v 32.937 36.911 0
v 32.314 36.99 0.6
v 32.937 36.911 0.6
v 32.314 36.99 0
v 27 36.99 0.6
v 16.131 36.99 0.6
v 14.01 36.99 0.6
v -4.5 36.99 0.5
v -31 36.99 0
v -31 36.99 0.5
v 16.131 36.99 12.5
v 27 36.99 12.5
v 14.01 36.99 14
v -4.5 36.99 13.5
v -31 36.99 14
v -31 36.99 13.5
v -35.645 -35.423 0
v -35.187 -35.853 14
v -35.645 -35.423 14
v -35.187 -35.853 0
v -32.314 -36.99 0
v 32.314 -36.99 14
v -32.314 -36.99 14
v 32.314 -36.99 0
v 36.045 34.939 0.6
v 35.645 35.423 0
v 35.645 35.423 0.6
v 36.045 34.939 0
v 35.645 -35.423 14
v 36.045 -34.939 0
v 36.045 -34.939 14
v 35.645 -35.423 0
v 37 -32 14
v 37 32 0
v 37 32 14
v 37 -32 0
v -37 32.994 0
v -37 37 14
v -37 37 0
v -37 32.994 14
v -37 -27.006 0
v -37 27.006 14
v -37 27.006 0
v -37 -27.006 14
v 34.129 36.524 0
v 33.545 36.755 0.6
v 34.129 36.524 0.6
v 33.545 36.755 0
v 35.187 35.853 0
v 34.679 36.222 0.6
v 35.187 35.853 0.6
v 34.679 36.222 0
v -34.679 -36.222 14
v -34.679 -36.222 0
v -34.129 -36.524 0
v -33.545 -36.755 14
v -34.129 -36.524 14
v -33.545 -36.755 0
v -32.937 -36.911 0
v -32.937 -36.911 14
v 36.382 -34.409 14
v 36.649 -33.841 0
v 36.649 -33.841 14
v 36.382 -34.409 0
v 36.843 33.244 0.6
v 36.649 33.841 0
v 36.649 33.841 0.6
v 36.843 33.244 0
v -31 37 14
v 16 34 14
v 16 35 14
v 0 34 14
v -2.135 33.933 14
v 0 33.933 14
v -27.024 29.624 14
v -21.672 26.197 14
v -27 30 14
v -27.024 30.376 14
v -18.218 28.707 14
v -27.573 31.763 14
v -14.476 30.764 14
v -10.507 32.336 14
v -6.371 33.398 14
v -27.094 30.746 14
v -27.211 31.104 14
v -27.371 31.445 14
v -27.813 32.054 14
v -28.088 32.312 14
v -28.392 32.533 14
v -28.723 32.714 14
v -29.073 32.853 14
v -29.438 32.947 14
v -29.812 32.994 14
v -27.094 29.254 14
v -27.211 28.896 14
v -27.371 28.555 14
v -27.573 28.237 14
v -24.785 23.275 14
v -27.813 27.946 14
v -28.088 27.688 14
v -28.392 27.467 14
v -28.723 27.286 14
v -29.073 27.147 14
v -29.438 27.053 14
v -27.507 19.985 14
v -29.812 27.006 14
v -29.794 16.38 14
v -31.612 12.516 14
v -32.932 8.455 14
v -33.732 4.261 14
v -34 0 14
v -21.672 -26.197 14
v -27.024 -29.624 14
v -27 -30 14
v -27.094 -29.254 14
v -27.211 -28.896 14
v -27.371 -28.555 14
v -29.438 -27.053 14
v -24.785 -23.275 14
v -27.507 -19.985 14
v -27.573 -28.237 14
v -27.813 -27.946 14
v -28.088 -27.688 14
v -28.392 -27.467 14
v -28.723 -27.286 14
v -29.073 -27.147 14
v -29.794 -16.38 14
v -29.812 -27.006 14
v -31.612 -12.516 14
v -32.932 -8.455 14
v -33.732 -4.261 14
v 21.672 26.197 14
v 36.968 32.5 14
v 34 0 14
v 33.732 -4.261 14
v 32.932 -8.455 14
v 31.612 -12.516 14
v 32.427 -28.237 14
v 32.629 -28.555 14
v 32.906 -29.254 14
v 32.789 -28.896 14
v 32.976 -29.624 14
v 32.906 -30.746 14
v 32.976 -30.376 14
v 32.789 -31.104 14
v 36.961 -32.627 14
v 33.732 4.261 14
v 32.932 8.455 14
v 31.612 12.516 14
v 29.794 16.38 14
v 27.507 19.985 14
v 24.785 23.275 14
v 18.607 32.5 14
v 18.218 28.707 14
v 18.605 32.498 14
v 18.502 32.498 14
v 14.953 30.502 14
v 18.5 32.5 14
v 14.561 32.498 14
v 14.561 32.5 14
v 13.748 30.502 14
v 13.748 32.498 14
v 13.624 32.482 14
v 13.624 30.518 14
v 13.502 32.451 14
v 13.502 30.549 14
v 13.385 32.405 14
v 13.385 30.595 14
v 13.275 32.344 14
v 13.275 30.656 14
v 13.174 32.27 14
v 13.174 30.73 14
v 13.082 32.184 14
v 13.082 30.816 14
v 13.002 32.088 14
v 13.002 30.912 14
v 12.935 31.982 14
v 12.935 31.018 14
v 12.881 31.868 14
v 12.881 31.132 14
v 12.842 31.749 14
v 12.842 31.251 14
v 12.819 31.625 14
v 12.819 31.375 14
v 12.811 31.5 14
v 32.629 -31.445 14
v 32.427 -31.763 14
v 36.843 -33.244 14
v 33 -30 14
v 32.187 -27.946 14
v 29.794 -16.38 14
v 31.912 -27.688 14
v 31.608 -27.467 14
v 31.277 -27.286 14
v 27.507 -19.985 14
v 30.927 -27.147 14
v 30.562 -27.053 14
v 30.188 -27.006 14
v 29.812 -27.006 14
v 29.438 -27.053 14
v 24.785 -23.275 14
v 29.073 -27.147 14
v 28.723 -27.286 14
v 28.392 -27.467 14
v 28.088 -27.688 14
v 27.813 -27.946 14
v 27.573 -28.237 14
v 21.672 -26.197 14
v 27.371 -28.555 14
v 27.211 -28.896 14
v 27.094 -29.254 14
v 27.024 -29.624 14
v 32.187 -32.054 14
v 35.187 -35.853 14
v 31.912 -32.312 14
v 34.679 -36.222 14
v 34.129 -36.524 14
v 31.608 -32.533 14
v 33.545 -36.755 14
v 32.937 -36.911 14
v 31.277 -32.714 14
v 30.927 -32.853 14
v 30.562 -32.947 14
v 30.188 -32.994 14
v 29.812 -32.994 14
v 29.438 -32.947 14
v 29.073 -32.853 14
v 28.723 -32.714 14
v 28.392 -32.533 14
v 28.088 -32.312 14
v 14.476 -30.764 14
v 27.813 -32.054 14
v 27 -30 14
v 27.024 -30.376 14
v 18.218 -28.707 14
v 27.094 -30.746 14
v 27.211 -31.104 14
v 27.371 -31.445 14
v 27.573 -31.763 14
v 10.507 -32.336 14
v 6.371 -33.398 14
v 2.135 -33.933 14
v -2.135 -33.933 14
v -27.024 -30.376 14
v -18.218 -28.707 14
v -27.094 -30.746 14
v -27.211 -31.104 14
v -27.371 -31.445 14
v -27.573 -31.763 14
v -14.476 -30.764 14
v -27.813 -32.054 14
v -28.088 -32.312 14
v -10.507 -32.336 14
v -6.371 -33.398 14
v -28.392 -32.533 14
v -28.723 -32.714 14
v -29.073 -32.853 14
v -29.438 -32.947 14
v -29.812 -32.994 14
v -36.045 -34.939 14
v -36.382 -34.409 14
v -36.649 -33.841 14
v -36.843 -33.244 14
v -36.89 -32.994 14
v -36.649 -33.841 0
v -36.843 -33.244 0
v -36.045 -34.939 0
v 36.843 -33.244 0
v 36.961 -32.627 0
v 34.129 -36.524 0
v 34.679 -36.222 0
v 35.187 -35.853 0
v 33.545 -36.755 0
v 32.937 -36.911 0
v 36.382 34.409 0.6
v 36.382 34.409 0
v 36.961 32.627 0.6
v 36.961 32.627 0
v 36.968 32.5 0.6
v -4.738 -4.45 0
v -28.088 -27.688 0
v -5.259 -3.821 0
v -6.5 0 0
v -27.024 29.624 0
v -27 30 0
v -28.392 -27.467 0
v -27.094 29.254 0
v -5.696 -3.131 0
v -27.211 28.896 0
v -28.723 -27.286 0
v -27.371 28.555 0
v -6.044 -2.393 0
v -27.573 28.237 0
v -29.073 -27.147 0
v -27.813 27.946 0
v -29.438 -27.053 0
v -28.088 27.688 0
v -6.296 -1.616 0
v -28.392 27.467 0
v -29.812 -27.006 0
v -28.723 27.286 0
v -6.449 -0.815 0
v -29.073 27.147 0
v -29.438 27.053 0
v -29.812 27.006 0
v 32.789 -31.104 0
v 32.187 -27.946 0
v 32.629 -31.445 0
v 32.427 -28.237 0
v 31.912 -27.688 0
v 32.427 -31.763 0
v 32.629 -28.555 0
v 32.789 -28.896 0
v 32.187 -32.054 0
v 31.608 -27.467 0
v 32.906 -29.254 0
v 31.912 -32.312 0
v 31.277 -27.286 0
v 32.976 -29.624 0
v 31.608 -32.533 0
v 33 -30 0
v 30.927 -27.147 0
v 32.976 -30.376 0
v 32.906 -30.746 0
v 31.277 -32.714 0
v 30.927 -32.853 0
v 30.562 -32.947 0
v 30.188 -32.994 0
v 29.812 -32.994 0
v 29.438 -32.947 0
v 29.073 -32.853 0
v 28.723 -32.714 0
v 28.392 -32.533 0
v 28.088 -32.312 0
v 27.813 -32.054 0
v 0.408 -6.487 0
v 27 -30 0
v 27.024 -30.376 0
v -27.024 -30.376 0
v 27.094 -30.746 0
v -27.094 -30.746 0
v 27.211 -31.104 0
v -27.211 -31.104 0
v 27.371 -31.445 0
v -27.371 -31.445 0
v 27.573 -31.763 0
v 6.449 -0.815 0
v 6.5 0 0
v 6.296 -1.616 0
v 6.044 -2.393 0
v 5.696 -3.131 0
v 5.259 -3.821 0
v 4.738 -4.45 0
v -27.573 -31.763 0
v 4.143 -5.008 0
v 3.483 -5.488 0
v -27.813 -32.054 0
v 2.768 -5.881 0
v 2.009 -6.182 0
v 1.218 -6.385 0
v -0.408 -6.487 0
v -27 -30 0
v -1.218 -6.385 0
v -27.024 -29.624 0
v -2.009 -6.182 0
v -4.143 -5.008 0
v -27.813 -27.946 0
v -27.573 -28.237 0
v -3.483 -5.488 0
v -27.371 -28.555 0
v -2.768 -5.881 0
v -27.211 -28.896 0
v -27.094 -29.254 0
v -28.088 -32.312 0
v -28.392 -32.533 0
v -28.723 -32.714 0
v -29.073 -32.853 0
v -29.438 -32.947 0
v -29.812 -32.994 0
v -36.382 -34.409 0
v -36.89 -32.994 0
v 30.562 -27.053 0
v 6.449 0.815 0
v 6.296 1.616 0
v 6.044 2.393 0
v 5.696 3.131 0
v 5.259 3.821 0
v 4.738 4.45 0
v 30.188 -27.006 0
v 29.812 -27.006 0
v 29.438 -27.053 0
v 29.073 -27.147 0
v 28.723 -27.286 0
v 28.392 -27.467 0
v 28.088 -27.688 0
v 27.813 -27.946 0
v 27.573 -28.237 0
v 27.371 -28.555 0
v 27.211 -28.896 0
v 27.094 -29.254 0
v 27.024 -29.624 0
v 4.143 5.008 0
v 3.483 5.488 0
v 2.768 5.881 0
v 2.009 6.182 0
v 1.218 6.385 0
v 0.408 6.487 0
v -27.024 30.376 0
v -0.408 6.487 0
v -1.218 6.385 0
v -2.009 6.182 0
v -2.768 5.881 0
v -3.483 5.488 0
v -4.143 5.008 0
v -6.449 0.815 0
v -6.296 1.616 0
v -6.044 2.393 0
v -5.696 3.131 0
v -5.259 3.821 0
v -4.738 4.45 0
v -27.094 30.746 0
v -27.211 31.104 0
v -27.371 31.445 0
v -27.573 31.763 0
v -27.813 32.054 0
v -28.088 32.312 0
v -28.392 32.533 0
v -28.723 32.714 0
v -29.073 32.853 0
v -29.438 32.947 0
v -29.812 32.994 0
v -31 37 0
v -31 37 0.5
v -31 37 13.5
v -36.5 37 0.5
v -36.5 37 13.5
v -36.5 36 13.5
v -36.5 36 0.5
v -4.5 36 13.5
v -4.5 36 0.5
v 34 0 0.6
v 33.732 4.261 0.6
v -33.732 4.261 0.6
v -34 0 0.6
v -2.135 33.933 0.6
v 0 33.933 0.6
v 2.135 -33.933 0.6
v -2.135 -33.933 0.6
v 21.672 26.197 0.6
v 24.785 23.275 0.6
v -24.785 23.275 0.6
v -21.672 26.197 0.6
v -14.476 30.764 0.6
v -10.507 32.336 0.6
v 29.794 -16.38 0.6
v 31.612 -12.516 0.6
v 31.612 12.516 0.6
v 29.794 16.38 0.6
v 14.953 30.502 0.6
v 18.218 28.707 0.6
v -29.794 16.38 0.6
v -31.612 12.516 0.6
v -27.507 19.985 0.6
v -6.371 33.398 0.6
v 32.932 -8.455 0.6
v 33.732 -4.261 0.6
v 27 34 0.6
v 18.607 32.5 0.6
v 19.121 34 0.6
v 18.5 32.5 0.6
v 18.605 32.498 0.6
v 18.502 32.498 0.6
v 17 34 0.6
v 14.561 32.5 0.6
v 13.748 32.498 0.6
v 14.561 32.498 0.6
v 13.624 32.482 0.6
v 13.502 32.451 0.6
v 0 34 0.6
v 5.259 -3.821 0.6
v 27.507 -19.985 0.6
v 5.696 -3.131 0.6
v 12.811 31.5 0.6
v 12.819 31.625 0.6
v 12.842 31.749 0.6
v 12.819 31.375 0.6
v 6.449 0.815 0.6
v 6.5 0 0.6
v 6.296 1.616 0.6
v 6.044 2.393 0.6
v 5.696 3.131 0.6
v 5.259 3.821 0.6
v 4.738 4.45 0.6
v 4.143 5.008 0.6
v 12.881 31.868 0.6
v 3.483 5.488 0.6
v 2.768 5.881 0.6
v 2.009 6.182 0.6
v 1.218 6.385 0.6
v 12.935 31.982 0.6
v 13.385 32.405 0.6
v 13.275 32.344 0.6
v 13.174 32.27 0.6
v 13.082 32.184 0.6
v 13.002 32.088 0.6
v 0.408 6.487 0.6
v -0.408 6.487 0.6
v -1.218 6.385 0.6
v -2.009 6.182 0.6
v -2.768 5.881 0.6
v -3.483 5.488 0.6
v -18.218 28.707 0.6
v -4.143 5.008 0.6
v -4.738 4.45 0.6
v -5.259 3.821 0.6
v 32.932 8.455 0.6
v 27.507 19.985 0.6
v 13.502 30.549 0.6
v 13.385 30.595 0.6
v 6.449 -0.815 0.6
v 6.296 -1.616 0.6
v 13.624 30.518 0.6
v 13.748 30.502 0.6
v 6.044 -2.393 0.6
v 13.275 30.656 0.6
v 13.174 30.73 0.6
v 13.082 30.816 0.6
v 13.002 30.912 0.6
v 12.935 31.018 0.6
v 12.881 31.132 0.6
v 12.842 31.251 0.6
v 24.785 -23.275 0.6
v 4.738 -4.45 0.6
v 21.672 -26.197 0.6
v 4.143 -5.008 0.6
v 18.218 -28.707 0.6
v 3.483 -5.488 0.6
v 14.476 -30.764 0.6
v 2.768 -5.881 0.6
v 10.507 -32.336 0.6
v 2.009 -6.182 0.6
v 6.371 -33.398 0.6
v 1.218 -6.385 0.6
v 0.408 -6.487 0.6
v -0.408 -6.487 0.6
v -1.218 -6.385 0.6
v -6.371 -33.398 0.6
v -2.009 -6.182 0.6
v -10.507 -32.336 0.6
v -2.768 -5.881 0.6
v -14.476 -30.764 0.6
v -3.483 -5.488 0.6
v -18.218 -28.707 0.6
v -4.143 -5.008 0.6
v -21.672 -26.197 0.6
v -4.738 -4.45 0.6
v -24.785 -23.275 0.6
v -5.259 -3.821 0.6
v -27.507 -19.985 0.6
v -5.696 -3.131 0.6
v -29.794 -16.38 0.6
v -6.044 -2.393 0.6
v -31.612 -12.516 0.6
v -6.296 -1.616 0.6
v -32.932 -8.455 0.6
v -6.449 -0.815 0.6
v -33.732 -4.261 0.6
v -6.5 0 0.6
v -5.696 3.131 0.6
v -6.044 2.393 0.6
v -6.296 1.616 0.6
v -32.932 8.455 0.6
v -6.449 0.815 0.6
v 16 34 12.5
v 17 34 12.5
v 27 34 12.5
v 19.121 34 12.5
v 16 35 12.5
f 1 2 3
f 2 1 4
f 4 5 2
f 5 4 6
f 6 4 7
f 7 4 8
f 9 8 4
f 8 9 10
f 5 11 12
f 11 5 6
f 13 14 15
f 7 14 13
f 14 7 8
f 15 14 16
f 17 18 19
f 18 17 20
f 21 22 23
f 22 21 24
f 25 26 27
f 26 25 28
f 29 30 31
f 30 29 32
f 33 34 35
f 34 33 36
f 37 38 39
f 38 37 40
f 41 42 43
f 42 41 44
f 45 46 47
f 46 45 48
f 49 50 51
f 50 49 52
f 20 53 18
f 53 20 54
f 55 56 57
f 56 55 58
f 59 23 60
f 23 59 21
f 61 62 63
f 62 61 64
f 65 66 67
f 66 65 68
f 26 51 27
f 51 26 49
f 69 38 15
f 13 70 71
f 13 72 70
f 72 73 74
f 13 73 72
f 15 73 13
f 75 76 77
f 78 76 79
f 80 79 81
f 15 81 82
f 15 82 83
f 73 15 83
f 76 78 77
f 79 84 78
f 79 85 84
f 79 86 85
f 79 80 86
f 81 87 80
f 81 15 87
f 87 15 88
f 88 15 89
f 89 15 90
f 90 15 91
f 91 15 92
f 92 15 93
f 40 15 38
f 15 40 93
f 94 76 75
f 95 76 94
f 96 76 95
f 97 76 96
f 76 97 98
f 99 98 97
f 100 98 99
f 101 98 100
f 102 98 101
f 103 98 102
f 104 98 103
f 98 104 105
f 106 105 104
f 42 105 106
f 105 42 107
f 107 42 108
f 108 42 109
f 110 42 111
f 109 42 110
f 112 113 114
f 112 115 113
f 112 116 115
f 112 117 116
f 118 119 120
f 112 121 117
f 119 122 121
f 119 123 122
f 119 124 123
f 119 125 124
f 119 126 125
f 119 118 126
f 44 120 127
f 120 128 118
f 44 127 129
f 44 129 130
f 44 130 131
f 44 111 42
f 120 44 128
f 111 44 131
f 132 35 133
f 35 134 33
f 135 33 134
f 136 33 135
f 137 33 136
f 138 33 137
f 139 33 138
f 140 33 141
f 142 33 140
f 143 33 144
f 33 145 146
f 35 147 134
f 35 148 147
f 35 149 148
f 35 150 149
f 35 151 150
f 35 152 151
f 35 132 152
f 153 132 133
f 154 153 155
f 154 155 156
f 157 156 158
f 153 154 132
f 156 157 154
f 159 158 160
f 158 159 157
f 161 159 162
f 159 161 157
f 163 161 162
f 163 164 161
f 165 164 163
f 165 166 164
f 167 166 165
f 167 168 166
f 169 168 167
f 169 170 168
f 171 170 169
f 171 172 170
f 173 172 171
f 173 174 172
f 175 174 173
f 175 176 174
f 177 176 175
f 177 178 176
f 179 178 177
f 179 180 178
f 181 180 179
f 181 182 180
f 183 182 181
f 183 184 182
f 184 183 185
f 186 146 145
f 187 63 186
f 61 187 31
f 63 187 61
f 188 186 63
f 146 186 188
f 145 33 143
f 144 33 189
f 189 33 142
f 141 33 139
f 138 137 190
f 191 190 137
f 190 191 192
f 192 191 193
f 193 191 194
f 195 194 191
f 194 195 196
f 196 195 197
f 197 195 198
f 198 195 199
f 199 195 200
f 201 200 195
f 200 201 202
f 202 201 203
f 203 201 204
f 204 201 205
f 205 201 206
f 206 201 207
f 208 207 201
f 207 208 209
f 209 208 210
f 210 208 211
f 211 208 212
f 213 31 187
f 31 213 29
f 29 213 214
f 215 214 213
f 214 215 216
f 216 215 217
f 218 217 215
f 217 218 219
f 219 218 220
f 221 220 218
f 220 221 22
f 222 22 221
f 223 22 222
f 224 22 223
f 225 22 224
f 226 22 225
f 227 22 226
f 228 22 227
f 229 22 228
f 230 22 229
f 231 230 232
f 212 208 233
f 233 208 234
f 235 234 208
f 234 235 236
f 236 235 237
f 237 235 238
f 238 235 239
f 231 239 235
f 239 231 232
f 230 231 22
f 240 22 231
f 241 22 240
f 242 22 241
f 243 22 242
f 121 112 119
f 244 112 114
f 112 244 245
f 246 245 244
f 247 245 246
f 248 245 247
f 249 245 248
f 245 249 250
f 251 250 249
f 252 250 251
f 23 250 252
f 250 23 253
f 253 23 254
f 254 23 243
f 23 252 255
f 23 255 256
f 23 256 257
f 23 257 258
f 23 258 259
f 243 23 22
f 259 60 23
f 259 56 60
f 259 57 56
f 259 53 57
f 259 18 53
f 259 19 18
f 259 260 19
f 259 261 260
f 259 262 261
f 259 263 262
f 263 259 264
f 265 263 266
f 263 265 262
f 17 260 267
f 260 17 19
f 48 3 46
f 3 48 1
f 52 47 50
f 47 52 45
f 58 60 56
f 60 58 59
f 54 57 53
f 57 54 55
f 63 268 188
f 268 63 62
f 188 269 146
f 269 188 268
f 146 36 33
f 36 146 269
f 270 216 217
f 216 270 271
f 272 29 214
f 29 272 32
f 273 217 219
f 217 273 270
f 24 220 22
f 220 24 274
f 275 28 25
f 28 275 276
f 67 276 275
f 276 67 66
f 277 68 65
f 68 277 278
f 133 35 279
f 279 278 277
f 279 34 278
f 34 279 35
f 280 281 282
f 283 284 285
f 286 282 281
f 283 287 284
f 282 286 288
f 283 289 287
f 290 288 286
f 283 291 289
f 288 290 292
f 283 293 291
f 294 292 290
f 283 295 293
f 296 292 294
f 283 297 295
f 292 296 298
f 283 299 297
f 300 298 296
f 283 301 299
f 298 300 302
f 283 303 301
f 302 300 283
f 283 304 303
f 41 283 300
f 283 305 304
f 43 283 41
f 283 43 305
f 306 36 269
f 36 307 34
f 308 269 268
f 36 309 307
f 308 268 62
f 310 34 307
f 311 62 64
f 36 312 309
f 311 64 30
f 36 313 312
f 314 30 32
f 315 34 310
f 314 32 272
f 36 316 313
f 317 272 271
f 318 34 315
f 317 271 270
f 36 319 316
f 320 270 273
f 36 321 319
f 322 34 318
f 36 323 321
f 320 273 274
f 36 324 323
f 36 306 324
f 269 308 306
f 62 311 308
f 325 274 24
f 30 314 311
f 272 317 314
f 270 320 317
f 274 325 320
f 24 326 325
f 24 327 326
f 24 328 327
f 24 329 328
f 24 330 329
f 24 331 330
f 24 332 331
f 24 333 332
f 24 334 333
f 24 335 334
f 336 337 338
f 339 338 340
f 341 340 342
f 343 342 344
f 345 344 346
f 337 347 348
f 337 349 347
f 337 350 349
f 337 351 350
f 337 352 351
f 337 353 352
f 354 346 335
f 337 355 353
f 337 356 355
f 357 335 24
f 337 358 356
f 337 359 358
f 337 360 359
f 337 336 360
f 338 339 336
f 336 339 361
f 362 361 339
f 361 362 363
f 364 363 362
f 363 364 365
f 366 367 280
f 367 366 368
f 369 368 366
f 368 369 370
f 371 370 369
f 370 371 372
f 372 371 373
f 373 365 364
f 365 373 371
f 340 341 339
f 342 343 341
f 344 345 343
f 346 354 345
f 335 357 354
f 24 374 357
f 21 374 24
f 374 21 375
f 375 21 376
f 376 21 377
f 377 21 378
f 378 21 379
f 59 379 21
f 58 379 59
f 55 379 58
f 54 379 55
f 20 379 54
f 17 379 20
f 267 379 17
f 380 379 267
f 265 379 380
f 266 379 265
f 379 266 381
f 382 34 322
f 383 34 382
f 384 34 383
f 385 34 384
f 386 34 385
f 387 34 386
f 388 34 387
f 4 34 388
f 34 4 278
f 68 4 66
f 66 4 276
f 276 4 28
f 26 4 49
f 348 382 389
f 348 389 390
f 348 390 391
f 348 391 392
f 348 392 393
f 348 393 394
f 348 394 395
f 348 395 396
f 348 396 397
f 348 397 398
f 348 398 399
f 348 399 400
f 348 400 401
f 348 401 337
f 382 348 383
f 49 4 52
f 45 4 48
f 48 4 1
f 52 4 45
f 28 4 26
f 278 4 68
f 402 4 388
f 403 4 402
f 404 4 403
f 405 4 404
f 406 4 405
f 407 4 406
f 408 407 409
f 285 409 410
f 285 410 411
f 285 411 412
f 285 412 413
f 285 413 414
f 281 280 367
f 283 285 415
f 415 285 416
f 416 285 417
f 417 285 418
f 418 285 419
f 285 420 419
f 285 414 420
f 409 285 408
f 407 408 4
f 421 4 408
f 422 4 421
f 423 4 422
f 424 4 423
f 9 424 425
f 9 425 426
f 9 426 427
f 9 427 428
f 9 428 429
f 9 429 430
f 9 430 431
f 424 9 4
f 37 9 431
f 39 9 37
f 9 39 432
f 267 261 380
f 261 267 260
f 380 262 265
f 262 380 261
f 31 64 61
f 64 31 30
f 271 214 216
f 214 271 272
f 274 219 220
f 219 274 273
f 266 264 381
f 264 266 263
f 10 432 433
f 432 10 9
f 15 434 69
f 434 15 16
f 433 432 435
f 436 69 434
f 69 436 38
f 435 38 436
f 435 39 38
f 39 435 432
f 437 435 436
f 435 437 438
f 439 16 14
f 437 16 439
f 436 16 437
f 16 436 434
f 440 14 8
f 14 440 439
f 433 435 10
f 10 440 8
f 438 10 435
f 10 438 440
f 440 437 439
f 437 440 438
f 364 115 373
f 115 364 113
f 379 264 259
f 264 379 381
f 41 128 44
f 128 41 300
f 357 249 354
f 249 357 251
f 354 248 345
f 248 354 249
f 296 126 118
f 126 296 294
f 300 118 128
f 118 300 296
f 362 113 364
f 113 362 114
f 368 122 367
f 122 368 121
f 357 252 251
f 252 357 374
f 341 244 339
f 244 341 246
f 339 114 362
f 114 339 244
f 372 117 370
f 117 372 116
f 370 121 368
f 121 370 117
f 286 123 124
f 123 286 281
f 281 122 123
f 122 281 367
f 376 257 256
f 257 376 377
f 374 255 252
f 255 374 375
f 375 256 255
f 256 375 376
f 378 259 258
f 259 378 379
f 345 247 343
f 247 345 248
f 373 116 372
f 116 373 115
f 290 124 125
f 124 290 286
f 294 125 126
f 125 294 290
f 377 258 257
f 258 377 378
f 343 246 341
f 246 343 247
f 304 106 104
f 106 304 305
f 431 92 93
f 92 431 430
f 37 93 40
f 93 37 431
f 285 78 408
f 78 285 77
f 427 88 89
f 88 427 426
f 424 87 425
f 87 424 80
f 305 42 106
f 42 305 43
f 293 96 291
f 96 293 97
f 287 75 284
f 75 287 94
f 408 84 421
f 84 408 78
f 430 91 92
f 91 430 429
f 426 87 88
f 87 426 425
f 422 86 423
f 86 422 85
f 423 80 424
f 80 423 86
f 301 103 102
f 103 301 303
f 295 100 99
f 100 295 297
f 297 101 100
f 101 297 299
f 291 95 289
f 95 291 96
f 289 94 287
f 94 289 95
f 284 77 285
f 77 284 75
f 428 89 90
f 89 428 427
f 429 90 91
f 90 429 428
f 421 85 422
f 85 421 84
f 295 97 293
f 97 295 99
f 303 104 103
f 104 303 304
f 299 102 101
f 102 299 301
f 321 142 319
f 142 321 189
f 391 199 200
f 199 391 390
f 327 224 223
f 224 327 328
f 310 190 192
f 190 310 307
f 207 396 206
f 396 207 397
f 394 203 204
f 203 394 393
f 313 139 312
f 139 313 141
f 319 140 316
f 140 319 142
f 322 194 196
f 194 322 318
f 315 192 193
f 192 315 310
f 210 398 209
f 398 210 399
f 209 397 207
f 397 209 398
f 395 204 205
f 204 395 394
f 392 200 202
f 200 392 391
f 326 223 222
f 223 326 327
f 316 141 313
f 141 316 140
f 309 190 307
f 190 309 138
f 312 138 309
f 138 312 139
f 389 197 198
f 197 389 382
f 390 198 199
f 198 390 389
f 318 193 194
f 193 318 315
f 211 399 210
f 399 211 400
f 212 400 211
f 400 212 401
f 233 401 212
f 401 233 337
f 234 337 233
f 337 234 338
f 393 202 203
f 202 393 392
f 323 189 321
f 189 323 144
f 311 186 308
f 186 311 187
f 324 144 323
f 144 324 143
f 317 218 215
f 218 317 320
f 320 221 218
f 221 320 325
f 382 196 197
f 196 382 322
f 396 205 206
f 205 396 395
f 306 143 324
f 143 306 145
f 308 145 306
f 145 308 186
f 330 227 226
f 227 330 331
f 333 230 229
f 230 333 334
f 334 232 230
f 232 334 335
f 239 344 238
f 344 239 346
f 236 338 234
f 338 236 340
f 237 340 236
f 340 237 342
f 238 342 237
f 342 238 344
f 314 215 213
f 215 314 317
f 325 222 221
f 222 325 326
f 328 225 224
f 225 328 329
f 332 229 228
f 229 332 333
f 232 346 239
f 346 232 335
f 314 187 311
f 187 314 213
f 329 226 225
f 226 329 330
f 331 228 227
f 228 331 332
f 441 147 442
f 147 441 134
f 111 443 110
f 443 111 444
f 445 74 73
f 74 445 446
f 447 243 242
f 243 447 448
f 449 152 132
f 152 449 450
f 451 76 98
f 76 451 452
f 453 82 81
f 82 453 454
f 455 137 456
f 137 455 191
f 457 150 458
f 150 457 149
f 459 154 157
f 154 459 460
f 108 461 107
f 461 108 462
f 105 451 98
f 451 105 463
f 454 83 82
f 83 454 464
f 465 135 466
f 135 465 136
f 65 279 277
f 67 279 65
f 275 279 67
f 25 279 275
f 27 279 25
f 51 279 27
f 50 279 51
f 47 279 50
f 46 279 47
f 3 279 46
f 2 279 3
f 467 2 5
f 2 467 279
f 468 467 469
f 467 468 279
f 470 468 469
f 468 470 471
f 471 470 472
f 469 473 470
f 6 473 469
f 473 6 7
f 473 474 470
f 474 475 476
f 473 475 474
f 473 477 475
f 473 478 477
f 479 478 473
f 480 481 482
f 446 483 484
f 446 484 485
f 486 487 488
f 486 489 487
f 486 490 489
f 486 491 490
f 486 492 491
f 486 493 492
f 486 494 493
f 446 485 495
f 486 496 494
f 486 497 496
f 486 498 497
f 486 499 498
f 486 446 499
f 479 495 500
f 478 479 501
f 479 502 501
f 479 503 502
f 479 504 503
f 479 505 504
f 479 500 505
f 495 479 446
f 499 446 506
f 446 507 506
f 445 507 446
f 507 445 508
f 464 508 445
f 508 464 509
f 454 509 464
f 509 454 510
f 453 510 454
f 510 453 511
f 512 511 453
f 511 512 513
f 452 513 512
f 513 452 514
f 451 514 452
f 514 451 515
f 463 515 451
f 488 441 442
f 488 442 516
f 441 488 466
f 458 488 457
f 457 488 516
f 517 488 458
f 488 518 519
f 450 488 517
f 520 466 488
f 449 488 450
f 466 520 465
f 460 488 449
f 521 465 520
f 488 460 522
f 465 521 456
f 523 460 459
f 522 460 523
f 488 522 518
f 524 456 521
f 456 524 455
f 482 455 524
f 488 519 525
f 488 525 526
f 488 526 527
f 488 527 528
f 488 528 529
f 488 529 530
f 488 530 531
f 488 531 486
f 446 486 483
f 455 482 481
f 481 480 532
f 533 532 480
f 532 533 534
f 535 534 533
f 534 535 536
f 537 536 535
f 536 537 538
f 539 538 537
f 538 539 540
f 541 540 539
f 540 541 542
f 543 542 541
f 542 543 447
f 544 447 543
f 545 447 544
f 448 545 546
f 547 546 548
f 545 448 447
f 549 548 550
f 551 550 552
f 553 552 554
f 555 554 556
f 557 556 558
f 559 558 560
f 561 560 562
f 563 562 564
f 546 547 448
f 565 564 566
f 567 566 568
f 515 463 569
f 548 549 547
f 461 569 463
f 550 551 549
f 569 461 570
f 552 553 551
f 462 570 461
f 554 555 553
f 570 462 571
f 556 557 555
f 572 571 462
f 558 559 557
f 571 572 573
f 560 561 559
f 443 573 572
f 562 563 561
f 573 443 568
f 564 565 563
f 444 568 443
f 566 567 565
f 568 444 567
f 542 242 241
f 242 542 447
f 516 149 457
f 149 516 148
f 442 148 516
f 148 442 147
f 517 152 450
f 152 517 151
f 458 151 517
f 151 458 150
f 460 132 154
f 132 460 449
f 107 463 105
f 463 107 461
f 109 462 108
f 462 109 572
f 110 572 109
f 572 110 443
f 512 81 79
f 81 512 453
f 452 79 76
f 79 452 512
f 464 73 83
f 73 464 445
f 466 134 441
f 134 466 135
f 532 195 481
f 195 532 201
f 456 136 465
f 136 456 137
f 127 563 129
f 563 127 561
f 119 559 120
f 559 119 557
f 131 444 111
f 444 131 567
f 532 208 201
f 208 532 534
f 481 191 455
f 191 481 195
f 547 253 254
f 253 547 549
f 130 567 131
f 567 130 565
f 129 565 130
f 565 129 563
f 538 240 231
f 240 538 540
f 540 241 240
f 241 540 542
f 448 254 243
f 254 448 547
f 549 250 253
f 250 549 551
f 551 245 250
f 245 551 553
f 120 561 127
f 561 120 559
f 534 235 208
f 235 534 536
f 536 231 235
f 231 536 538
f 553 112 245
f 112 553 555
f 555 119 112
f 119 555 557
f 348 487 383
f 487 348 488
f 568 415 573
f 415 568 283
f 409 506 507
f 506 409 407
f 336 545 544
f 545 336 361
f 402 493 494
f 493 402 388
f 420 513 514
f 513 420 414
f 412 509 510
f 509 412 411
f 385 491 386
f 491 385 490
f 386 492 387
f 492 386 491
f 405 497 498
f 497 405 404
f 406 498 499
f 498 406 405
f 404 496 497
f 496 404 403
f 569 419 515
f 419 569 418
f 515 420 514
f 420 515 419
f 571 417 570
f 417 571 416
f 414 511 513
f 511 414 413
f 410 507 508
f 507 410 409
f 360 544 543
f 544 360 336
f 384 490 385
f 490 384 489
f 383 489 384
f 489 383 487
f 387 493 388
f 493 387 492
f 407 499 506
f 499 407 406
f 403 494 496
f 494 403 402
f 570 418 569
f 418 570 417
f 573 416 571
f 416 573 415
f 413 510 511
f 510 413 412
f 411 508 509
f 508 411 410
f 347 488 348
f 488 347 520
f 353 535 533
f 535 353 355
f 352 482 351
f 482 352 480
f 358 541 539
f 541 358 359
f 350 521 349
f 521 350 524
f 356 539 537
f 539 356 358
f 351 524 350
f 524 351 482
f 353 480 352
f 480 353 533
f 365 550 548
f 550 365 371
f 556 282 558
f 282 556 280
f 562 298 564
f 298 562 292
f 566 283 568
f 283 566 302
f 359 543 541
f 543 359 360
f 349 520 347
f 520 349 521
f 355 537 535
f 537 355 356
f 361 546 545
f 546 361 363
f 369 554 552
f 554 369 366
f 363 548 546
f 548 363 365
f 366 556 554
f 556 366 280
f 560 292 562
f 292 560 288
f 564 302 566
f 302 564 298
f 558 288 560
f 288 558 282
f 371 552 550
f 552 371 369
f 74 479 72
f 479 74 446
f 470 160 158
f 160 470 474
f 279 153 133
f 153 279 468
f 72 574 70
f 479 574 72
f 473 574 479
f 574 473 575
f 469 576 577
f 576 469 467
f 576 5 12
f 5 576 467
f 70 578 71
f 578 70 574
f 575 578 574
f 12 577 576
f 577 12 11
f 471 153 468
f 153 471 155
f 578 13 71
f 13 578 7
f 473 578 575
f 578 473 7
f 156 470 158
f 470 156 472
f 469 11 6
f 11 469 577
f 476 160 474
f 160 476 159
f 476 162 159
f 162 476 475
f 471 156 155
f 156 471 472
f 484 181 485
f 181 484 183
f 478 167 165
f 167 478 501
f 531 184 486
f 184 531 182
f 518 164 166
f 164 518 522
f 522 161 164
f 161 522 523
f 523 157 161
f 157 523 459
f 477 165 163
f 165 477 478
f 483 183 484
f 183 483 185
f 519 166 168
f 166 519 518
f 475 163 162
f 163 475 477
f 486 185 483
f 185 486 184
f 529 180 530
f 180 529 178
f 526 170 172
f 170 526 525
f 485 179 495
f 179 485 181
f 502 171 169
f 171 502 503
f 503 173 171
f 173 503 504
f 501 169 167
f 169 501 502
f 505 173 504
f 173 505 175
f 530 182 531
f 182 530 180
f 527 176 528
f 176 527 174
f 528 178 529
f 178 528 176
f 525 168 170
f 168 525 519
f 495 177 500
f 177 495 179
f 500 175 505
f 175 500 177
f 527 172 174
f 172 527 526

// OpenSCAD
$fn = 50;


union() {
	difference() {
		union() {
			translate(v = [0, 0, 0]) {
				rotate(a = [0, 0, 0]) {
					hull() {
						translate(v = [-32.0000000000, 32.0000000000, 0]) {
							rotate(a = [0, 0, 0]) {
								translate(v = [0, 0, 0]) {
									rotate(a = [0, 0, 0]) {
										cylinder(h = 14, r = 5);
									}
								}
							}
						}
						translate(v = [32.0000000000, 32.0000000000, 0]) {
							rotate(a = [0, 0, 0]) {
								translate(v = [0, 0, 0]) {
									rotate(a = [0, 0, 0]) {
										cylinder(h = 14, r = 5);
									}
								}
							}
						}
						translate(v = [-32.0000000000, -32.0000000000, 0]) {
							rotate(a = [0, 0, 0]) {
								translate(v = [0, 0, 0]) {
									rotate(a = [0, 0, 0]) {
										cylinder(h = 14, r = 5);
									}
								}
							}
						}
						translate(v = [32.0000000000, -32.0000000000, 0]) {
							rotate(a = [0, 0, 0]) {
								translate(v = [0, 0, 0]) {
									rotate(a = [0, 0, 0]) {
										cylinder(h = 14, r = 5);
									}
								}
							}
						}
					}
				}
			}
			translate(v = [-37.0000000000, 31.0000000000, 0]) {
				rotate(a = [0, 0, 0]) {
					cube(size = [6, 6, 14]);
				}
			}
		}
		union() {
			translate(v = [-36.5000000000, 36.0000000000, 0.5000000000]) {
				rotate(a = [0, 0, 0]) {
					cube(size = [30, 1, 13.0000000000]);
				}
			}
			translate(v = [-37.5000000000, -30.0000000000, -125]) {
				rotate(a = [0, 0, 0]) {
					hull() {
						translate(v = [7.5000000000, 0, 0]) {
							rotate(a = [0, 0, 0]) {
								translate(v = [0, 0, 0]) {
									rotate(a = [0, 0, 0]) {
										cylinder(h = 250, r = 3.0000000000);
									}
								}
							}
						}
						translate(v = [-7.5000000000, 0, 0]) {
							rotate(a = [0, 0, 0]) {
								translate(v = [0, 0, 0]) {
									rotate(a = [0, 0, 0]) {
										cylinder(h = 250, r = 3.0000000000);
									}
								}
							}
						}
					}
				}
			}
			translate(v = [-37.5000000000, 30.0000000000, -125]) {
				rotate(a = [0, 0, 0]) {
					hull() {
						translate(v = [7.5000000000, 0, 0]) {
							rotate(a = [0, 0, 0]) {
								translate(v = [0, 0, 0]) {
									rotate(a = [0, 0, 0]) {
										cylinder(h = 250, r = 3.0000000000);
									}
								}
							}
						}
						translate(v = [-7.5000000000, 0, 0]) {
							rotate(a = [0, 0, 0]) {
								translate(v = [0, 0, 0]) {
									rotate(a = [0, 0, 0]) {
										cylinder(h = 250, r = 3.0000000000);
									}
								}
							}
						}
					}
				}
			}
			translate(v = [30.0000000000, -30.0000000000, -125.0000000000]) {
				rotate(a = [0, 0, 0]) {
					cylinder(h = 250, r = 3.0000000000);
				}
			}
			translate(v = [0, 0, 0.6000000000]) {
				rotate(a = [0, 0, 0]) {
					cylinder(h = 16.4000000000, r = 34.0000000000);
				}
			}
			translate(v = [0, 0, -7.0000000000]) {
				rotate(a = [0, 0, 0]) {
					cylinder(h = 14, r = 6.5000000000);
				}
			}
			translate(v = [0.0000000000, 32.5000000000, 0.6000000000]) {
				rotate(a = [0, 0, 0]) {
					cube(size = [37.0000000000, 1.5000000000, 16.4000000000]);
				}
			}
			translate(v = [27.0000000000, 32.5000000000, 0.6000000000]) {
				rotate(a = [0, 0, 0]) {
					cube(size = [10, 4.5000000000, 16.4000000000]);
				}
			}
			translate(v = [16.0000000000, 32.5000000000, 12.5000000000]) {
				rotate(a = [0, 0, 0]) {
					cube(size = [21, 4.5000000000, 1.5000000000]);
				}
			}
			translate(v = [13.2500000000, 37.7500000000, 0.6000000000]) {
				rotate(a = [0, 0, -45]) {
					cube(size = [7.5000000000, 1.5000000000, 16.4000000000]);
				}
			}
			translate(v = [7.0610000000, 30.5000000000, 0.6000000000]) {
				rotate(a = [0, 0, 0]) {
					cube(size = [7.5000000000, 2, 13.4000000000]);
				}
			}
		}
	}
	union() {
		translate(v = [16.3110000000, 31.5000000000, 0]) {
			rotate(a = [0, 0, 0]) {
				hull() {
					translate(v = [2.5000000000, 0, 0]) {
						rotate(a = [0, 0, 0]) {
							translate(v = [0, 0, 0]) {
								rotate(a = [0, 0, 0]) {
									cylinder(h = 14, r = 1.0000000000);
								}
							}
						}
					}
					translate(v = [-2.5000000000, 0, 0]) {
						rotate(a = [0, 0, 0]) {
							translate(v = [0, 0, 0]) {
								rotate(a = [0, 0, 0]) {
									cylinder(h = 14, r = 1.0000000000);
								}
							}
						}
					}
				}
			}
		}
	}
}
